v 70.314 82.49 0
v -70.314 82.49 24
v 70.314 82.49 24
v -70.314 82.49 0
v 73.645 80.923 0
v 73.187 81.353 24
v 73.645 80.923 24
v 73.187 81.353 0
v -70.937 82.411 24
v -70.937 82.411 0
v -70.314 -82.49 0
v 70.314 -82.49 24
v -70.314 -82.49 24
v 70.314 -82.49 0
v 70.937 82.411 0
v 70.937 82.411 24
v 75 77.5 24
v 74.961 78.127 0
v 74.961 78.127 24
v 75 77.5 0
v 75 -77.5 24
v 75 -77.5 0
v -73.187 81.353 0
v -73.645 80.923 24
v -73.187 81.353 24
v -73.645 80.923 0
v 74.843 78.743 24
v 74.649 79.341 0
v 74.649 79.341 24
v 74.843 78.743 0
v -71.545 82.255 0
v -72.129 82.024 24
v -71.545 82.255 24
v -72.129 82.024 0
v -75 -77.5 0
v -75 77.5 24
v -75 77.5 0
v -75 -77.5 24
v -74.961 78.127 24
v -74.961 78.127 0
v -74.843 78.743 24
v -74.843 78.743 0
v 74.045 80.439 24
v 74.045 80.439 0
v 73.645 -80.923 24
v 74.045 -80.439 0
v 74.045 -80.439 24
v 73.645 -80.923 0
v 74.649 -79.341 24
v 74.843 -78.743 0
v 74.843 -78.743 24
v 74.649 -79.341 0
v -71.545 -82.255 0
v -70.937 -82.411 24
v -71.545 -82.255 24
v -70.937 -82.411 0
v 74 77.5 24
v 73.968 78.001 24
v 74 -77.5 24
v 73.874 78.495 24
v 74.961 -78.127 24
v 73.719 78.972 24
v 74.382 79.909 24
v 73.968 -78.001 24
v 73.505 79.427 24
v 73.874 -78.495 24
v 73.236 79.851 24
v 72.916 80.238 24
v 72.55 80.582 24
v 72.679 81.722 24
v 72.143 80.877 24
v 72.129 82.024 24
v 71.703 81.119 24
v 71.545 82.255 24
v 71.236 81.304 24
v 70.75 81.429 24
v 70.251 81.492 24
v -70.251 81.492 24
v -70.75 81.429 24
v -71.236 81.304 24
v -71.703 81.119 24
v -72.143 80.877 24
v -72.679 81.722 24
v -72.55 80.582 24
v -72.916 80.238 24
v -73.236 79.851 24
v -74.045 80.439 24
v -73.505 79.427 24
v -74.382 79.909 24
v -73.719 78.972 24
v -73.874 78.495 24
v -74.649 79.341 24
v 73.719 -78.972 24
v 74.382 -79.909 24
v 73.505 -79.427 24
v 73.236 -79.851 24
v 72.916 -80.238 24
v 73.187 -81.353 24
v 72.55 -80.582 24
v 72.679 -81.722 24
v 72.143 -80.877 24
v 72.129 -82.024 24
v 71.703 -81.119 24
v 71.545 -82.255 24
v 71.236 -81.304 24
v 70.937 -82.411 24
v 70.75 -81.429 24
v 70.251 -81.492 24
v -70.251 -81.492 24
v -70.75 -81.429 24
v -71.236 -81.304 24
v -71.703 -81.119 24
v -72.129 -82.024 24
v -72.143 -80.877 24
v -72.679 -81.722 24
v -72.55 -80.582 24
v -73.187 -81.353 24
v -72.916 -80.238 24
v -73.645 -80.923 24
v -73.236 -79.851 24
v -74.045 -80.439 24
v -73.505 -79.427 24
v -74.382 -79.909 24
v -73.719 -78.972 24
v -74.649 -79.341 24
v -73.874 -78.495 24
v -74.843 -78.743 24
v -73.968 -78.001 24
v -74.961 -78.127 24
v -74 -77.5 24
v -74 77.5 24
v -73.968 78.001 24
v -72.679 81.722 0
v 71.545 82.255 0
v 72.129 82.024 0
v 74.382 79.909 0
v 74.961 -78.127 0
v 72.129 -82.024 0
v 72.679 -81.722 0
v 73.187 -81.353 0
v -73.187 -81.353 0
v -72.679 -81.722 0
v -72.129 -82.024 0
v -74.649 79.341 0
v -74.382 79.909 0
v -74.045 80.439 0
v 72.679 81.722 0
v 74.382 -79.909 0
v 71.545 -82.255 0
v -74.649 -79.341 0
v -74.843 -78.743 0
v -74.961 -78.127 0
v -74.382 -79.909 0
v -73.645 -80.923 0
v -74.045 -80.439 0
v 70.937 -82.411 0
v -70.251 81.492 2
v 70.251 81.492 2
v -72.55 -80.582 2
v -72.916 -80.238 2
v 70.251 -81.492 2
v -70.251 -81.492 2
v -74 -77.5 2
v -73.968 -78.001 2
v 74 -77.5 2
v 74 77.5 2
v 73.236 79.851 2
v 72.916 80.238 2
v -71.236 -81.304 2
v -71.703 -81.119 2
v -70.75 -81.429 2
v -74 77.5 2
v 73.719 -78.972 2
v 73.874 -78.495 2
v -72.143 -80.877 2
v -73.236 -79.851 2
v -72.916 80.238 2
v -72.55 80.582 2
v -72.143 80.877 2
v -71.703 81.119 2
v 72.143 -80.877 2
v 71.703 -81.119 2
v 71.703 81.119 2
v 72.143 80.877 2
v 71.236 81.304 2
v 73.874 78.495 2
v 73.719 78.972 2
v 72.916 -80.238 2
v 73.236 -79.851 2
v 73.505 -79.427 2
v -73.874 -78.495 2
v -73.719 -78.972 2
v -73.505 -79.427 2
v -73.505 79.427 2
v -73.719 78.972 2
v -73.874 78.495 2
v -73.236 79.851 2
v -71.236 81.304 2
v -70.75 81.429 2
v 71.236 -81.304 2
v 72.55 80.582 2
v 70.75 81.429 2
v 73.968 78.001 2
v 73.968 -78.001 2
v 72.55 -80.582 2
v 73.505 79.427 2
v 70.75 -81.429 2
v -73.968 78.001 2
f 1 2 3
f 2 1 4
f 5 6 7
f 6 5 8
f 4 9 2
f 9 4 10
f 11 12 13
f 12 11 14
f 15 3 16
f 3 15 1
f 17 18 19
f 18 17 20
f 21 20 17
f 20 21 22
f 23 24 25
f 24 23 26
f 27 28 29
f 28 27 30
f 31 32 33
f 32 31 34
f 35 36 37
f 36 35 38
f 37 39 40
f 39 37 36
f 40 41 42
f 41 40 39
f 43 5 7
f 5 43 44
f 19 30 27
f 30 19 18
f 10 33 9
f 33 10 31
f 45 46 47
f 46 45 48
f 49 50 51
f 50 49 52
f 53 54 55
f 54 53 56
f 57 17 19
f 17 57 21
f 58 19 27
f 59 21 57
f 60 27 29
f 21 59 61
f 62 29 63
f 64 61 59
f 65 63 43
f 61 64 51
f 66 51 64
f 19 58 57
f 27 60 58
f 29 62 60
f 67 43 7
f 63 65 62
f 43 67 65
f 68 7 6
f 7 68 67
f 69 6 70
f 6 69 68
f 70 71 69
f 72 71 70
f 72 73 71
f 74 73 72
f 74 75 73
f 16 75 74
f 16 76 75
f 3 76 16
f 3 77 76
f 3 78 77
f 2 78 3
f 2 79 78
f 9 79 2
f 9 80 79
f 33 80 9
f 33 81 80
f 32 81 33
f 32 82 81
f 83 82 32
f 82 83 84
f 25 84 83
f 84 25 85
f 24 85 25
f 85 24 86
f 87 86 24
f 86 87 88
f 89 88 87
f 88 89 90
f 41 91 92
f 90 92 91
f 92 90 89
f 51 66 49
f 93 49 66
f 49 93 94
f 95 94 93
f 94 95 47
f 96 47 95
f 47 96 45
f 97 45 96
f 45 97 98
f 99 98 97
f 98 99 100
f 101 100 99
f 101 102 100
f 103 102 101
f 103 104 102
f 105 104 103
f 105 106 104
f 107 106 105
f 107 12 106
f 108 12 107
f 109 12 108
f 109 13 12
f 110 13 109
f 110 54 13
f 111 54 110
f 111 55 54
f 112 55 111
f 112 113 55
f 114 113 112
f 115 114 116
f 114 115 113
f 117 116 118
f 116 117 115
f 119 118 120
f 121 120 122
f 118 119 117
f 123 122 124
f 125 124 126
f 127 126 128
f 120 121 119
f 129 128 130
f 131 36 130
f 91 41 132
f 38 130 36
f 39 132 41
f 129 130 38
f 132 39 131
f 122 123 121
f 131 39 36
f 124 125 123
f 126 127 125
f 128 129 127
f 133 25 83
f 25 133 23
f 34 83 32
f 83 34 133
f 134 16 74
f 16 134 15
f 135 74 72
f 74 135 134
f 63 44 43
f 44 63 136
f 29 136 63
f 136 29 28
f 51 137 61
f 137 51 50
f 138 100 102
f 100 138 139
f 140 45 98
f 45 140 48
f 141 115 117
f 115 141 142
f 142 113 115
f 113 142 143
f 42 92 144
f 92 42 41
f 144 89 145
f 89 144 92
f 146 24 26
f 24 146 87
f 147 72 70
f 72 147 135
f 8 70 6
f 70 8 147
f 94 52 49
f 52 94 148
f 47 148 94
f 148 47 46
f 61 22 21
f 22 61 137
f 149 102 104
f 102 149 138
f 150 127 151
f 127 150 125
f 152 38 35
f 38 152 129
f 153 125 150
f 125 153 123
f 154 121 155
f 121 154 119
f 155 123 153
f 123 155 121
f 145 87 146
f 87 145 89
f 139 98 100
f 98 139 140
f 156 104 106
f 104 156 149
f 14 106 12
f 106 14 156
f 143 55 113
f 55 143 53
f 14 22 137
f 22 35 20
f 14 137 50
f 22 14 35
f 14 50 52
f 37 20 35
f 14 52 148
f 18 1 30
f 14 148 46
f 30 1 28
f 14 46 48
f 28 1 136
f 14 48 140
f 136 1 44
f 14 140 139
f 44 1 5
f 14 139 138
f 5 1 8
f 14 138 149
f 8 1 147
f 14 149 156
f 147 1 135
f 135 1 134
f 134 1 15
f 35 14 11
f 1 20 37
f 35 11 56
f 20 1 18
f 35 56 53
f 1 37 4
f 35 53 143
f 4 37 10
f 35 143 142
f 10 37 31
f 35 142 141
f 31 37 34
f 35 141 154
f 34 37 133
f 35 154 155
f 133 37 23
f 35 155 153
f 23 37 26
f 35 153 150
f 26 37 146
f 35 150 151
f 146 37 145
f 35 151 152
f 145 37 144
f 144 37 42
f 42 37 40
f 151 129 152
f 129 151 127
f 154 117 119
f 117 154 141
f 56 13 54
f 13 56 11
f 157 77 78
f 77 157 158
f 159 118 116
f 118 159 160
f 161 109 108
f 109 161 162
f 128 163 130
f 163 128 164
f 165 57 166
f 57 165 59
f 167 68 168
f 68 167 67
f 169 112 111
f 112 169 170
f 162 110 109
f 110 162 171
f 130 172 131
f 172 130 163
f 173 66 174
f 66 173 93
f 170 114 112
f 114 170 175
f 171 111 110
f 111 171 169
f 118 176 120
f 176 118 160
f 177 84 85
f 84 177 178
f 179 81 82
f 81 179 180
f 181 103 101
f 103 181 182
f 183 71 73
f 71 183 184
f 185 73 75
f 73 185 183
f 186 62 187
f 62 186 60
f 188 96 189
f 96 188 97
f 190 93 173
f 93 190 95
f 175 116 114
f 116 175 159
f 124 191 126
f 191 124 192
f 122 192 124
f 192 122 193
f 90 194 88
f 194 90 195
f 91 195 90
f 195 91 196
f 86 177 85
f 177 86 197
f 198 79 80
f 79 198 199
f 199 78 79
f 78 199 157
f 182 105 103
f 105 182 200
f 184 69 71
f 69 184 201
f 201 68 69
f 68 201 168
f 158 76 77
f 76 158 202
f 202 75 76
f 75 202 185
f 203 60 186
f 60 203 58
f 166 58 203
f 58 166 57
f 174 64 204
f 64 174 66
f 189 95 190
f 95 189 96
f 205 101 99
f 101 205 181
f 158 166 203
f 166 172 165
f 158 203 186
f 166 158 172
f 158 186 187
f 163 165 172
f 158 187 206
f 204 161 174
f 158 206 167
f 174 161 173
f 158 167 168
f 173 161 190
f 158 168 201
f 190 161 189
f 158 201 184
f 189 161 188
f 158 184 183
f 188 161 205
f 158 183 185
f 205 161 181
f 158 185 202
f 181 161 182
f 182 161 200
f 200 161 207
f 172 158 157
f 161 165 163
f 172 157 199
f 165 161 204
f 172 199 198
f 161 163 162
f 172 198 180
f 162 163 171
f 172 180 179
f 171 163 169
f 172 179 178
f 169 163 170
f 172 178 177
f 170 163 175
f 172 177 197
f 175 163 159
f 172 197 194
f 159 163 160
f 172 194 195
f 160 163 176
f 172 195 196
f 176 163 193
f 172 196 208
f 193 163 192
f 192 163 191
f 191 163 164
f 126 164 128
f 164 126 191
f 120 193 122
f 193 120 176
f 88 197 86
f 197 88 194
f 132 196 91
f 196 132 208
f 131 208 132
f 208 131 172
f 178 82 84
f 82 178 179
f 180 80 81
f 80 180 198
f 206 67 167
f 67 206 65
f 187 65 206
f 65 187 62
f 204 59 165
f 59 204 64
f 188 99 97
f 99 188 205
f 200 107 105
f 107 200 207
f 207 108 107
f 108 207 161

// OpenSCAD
$fn = 50;


difference() {
	union() {
		hull() {
			translate(v = [-70.0000000000, 77.5000000000, 0]) {
				cylinder(h = 24, r = 5);
			}
			translate(v = [70.0000000000, 77.5000000000, 0]) {
				cylinder(h = 24, r = 5);
			}
			translate(v = [-70.0000000000, -77.5000000000, 0]) {
				cylinder(h = 24, r = 5);
			}
			translate(v = [70.0000000000, -77.5000000000, 0]) {
				cylinder(h = 24, r = 5);
			}
		}
	}
	union() {
		translate(v = [0, 0, 2]) {
			hull() {
				translate(v = [-70.0000000000, 77.5000000000, 0]) {
					cylinder(h = 22, r = 4);
				}
				translate(v = [70.0000000000, 77.5000000000, 0]) {
					cylinder(h = 22, r = 4);
				}
				translate(v = [-70.0000000000, -77.5000000000, 0]) {
					cylinder(h = 22, r = 4);
				}
				translate(v = [70.0000000000, -77.5000000000, 0]) {
					cylinder(h = 22, r = 4);
				}
			}
		}
	}
}
